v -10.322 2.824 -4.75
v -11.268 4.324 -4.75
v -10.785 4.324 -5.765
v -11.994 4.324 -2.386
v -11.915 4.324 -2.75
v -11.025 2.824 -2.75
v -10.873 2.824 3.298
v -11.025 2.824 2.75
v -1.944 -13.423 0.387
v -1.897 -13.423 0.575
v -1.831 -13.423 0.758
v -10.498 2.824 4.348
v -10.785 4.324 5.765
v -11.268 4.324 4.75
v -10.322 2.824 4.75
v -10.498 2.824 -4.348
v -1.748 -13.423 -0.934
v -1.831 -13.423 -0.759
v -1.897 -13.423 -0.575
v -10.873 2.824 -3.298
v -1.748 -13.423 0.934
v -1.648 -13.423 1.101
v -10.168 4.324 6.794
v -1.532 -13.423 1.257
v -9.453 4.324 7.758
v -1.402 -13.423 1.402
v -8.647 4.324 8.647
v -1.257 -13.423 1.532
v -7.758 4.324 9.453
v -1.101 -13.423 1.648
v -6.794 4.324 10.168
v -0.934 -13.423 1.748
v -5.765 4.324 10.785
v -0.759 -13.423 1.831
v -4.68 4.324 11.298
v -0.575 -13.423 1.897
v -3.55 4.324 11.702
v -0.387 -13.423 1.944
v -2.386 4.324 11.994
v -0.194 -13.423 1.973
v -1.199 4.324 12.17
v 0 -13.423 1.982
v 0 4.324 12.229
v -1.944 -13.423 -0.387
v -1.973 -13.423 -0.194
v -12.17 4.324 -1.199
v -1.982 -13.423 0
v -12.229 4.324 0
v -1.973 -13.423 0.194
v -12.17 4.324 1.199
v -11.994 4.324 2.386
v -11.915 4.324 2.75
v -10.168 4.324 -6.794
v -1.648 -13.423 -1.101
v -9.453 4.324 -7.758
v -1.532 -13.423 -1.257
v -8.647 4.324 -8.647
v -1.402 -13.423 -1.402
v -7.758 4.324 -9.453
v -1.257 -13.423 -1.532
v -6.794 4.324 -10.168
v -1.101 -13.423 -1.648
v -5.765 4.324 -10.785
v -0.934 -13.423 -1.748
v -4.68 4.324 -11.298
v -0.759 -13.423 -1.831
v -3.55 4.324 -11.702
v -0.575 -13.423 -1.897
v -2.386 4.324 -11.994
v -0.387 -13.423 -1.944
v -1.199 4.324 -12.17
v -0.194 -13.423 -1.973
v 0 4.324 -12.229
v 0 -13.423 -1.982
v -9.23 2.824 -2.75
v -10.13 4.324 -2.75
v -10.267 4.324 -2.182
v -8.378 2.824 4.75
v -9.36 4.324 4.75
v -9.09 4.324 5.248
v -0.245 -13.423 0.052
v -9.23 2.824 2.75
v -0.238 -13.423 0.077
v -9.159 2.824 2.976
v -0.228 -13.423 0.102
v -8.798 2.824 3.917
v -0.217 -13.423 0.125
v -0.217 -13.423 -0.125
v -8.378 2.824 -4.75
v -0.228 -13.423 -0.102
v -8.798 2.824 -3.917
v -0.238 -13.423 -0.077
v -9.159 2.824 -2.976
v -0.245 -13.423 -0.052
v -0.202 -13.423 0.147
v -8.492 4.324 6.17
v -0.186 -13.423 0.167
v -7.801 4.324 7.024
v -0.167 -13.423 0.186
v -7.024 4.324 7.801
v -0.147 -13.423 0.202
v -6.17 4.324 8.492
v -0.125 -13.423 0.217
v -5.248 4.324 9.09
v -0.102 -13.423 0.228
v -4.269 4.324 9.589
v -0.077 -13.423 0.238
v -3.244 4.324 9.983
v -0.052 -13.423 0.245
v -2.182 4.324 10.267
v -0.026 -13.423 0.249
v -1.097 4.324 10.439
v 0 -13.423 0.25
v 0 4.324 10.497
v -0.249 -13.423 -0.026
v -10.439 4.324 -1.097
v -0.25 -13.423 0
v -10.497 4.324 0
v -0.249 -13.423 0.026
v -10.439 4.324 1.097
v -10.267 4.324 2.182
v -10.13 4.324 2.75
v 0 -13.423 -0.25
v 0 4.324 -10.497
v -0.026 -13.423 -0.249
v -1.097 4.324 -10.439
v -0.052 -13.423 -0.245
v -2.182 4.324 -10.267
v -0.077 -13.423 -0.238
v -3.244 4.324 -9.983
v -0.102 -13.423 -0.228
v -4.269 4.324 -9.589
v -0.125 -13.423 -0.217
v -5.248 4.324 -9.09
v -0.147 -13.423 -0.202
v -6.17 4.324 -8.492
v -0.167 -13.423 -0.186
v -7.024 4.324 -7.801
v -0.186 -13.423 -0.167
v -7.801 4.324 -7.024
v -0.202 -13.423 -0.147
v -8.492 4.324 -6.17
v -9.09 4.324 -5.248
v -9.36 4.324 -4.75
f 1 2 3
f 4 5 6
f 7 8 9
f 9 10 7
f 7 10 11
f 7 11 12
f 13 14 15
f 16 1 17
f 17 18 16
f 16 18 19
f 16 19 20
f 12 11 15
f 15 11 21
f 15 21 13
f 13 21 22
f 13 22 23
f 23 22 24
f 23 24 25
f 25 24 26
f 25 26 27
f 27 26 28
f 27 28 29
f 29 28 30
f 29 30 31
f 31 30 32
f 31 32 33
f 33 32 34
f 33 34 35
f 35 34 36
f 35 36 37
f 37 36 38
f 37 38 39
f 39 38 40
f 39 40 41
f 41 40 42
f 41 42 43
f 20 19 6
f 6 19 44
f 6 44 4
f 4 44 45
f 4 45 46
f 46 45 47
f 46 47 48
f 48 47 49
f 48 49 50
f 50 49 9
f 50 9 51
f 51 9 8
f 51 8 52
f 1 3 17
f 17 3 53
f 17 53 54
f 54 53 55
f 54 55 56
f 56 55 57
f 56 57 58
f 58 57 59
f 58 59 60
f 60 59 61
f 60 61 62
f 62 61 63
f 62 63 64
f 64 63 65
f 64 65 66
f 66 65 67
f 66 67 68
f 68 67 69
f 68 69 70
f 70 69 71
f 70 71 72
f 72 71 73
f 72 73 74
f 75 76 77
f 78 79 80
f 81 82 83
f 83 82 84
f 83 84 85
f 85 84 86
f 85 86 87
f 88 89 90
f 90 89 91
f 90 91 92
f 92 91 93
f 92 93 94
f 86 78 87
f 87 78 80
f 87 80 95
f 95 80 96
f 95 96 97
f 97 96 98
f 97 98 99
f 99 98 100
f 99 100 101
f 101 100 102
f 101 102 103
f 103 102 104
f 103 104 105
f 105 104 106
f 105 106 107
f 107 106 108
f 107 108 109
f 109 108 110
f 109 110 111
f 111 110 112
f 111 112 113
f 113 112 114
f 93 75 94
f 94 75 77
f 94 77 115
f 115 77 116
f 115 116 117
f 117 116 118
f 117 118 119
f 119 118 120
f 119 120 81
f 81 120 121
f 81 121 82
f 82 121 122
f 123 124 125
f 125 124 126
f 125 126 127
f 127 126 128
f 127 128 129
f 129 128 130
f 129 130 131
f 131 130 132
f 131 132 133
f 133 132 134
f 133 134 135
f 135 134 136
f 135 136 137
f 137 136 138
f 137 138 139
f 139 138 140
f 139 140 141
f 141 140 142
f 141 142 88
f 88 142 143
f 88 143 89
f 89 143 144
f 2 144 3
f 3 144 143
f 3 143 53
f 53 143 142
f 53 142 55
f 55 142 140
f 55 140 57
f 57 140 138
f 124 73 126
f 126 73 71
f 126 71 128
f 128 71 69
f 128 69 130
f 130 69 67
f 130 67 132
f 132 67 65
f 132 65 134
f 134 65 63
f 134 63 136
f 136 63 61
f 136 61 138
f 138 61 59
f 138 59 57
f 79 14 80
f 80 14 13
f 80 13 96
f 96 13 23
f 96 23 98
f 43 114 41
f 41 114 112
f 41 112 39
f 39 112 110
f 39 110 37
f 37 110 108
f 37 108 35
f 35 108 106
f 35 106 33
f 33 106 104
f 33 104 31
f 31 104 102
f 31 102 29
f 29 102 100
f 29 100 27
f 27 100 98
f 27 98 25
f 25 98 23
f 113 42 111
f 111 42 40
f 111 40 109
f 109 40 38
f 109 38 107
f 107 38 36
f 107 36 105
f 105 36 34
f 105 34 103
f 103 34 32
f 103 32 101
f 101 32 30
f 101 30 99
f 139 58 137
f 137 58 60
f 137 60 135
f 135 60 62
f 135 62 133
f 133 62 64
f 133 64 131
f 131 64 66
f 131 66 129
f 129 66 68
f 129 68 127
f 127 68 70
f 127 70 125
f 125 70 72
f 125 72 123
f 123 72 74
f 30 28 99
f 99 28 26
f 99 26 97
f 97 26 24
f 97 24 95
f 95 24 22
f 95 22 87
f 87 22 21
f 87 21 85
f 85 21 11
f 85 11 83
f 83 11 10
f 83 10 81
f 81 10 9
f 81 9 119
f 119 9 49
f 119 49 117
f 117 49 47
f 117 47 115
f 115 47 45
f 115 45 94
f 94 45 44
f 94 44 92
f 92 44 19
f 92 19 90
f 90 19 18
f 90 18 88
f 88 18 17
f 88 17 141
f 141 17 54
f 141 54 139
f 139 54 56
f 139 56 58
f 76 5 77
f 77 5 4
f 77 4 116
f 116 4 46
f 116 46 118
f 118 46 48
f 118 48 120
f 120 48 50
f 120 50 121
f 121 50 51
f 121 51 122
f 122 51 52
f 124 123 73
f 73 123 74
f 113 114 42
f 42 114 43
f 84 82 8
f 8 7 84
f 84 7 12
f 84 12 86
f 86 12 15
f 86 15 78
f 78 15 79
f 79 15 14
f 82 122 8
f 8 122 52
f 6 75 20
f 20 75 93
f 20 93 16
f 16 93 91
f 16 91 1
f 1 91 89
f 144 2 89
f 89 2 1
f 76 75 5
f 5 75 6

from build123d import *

# Parameters (mm, degrees)
REVOLVE_3_ANGLE           = 90
REVOLVE_3_OTHER_WAY_ANGLE = 90
SKETCH_4_W                = 6
SKETCH_4_H                = 1.5
CUT_EXTRUDE_1_DEPTH       = 2


with BuildPart() as part:
    # 草图2 → 旋转3 (revolve)
    with BuildSketch(Plane.XY):
        Polygon((-10.496621672, 4.324275584), (-12.22867248, 4.324275584), (-1.982050808, -13.423393759), (-0.25, -13.423393759), align=None)
    revolve(axis=Axis((0, 0, 0), (0, -1, 0)), revolution_arc=REVOLVE_3_ANGLE)

    # 草图2 → 旋转3 other way (revolve)
    with BuildSketch(Plane.XY):
        Polygon((-10.496621672, 4.324275584), (-12.22867248, 4.324275584), (-1.982050808, -13.423393759), (-0.25, -13.423393759), align=None)
    revolve(axis=Axis((0, 0, 0), (0, 1, 0)), revolution_arc=REVOLVE_3_OTHER_WAY_ANGLE)

    # 草图4 → 切除-拉伸1 (cut)
    with BuildSketch(Plane.XY.offset(2.75)):
        with Locations((-8.915449241, 3.574275584)):
            Rectangle(SKETCH_4_W, SKETCH_4_H)
    cut_extrude_1 = extrude(amount=CUT_EXTRUDE_1_DEPTH, mode=Mode.SUBTRACT)

    # 镜向1: 切除-拉伸1 across plane
    add(cut_extrude_1.mirror(Plane.XY), mode=Mode.SUBTRACT)


solid = part.part
